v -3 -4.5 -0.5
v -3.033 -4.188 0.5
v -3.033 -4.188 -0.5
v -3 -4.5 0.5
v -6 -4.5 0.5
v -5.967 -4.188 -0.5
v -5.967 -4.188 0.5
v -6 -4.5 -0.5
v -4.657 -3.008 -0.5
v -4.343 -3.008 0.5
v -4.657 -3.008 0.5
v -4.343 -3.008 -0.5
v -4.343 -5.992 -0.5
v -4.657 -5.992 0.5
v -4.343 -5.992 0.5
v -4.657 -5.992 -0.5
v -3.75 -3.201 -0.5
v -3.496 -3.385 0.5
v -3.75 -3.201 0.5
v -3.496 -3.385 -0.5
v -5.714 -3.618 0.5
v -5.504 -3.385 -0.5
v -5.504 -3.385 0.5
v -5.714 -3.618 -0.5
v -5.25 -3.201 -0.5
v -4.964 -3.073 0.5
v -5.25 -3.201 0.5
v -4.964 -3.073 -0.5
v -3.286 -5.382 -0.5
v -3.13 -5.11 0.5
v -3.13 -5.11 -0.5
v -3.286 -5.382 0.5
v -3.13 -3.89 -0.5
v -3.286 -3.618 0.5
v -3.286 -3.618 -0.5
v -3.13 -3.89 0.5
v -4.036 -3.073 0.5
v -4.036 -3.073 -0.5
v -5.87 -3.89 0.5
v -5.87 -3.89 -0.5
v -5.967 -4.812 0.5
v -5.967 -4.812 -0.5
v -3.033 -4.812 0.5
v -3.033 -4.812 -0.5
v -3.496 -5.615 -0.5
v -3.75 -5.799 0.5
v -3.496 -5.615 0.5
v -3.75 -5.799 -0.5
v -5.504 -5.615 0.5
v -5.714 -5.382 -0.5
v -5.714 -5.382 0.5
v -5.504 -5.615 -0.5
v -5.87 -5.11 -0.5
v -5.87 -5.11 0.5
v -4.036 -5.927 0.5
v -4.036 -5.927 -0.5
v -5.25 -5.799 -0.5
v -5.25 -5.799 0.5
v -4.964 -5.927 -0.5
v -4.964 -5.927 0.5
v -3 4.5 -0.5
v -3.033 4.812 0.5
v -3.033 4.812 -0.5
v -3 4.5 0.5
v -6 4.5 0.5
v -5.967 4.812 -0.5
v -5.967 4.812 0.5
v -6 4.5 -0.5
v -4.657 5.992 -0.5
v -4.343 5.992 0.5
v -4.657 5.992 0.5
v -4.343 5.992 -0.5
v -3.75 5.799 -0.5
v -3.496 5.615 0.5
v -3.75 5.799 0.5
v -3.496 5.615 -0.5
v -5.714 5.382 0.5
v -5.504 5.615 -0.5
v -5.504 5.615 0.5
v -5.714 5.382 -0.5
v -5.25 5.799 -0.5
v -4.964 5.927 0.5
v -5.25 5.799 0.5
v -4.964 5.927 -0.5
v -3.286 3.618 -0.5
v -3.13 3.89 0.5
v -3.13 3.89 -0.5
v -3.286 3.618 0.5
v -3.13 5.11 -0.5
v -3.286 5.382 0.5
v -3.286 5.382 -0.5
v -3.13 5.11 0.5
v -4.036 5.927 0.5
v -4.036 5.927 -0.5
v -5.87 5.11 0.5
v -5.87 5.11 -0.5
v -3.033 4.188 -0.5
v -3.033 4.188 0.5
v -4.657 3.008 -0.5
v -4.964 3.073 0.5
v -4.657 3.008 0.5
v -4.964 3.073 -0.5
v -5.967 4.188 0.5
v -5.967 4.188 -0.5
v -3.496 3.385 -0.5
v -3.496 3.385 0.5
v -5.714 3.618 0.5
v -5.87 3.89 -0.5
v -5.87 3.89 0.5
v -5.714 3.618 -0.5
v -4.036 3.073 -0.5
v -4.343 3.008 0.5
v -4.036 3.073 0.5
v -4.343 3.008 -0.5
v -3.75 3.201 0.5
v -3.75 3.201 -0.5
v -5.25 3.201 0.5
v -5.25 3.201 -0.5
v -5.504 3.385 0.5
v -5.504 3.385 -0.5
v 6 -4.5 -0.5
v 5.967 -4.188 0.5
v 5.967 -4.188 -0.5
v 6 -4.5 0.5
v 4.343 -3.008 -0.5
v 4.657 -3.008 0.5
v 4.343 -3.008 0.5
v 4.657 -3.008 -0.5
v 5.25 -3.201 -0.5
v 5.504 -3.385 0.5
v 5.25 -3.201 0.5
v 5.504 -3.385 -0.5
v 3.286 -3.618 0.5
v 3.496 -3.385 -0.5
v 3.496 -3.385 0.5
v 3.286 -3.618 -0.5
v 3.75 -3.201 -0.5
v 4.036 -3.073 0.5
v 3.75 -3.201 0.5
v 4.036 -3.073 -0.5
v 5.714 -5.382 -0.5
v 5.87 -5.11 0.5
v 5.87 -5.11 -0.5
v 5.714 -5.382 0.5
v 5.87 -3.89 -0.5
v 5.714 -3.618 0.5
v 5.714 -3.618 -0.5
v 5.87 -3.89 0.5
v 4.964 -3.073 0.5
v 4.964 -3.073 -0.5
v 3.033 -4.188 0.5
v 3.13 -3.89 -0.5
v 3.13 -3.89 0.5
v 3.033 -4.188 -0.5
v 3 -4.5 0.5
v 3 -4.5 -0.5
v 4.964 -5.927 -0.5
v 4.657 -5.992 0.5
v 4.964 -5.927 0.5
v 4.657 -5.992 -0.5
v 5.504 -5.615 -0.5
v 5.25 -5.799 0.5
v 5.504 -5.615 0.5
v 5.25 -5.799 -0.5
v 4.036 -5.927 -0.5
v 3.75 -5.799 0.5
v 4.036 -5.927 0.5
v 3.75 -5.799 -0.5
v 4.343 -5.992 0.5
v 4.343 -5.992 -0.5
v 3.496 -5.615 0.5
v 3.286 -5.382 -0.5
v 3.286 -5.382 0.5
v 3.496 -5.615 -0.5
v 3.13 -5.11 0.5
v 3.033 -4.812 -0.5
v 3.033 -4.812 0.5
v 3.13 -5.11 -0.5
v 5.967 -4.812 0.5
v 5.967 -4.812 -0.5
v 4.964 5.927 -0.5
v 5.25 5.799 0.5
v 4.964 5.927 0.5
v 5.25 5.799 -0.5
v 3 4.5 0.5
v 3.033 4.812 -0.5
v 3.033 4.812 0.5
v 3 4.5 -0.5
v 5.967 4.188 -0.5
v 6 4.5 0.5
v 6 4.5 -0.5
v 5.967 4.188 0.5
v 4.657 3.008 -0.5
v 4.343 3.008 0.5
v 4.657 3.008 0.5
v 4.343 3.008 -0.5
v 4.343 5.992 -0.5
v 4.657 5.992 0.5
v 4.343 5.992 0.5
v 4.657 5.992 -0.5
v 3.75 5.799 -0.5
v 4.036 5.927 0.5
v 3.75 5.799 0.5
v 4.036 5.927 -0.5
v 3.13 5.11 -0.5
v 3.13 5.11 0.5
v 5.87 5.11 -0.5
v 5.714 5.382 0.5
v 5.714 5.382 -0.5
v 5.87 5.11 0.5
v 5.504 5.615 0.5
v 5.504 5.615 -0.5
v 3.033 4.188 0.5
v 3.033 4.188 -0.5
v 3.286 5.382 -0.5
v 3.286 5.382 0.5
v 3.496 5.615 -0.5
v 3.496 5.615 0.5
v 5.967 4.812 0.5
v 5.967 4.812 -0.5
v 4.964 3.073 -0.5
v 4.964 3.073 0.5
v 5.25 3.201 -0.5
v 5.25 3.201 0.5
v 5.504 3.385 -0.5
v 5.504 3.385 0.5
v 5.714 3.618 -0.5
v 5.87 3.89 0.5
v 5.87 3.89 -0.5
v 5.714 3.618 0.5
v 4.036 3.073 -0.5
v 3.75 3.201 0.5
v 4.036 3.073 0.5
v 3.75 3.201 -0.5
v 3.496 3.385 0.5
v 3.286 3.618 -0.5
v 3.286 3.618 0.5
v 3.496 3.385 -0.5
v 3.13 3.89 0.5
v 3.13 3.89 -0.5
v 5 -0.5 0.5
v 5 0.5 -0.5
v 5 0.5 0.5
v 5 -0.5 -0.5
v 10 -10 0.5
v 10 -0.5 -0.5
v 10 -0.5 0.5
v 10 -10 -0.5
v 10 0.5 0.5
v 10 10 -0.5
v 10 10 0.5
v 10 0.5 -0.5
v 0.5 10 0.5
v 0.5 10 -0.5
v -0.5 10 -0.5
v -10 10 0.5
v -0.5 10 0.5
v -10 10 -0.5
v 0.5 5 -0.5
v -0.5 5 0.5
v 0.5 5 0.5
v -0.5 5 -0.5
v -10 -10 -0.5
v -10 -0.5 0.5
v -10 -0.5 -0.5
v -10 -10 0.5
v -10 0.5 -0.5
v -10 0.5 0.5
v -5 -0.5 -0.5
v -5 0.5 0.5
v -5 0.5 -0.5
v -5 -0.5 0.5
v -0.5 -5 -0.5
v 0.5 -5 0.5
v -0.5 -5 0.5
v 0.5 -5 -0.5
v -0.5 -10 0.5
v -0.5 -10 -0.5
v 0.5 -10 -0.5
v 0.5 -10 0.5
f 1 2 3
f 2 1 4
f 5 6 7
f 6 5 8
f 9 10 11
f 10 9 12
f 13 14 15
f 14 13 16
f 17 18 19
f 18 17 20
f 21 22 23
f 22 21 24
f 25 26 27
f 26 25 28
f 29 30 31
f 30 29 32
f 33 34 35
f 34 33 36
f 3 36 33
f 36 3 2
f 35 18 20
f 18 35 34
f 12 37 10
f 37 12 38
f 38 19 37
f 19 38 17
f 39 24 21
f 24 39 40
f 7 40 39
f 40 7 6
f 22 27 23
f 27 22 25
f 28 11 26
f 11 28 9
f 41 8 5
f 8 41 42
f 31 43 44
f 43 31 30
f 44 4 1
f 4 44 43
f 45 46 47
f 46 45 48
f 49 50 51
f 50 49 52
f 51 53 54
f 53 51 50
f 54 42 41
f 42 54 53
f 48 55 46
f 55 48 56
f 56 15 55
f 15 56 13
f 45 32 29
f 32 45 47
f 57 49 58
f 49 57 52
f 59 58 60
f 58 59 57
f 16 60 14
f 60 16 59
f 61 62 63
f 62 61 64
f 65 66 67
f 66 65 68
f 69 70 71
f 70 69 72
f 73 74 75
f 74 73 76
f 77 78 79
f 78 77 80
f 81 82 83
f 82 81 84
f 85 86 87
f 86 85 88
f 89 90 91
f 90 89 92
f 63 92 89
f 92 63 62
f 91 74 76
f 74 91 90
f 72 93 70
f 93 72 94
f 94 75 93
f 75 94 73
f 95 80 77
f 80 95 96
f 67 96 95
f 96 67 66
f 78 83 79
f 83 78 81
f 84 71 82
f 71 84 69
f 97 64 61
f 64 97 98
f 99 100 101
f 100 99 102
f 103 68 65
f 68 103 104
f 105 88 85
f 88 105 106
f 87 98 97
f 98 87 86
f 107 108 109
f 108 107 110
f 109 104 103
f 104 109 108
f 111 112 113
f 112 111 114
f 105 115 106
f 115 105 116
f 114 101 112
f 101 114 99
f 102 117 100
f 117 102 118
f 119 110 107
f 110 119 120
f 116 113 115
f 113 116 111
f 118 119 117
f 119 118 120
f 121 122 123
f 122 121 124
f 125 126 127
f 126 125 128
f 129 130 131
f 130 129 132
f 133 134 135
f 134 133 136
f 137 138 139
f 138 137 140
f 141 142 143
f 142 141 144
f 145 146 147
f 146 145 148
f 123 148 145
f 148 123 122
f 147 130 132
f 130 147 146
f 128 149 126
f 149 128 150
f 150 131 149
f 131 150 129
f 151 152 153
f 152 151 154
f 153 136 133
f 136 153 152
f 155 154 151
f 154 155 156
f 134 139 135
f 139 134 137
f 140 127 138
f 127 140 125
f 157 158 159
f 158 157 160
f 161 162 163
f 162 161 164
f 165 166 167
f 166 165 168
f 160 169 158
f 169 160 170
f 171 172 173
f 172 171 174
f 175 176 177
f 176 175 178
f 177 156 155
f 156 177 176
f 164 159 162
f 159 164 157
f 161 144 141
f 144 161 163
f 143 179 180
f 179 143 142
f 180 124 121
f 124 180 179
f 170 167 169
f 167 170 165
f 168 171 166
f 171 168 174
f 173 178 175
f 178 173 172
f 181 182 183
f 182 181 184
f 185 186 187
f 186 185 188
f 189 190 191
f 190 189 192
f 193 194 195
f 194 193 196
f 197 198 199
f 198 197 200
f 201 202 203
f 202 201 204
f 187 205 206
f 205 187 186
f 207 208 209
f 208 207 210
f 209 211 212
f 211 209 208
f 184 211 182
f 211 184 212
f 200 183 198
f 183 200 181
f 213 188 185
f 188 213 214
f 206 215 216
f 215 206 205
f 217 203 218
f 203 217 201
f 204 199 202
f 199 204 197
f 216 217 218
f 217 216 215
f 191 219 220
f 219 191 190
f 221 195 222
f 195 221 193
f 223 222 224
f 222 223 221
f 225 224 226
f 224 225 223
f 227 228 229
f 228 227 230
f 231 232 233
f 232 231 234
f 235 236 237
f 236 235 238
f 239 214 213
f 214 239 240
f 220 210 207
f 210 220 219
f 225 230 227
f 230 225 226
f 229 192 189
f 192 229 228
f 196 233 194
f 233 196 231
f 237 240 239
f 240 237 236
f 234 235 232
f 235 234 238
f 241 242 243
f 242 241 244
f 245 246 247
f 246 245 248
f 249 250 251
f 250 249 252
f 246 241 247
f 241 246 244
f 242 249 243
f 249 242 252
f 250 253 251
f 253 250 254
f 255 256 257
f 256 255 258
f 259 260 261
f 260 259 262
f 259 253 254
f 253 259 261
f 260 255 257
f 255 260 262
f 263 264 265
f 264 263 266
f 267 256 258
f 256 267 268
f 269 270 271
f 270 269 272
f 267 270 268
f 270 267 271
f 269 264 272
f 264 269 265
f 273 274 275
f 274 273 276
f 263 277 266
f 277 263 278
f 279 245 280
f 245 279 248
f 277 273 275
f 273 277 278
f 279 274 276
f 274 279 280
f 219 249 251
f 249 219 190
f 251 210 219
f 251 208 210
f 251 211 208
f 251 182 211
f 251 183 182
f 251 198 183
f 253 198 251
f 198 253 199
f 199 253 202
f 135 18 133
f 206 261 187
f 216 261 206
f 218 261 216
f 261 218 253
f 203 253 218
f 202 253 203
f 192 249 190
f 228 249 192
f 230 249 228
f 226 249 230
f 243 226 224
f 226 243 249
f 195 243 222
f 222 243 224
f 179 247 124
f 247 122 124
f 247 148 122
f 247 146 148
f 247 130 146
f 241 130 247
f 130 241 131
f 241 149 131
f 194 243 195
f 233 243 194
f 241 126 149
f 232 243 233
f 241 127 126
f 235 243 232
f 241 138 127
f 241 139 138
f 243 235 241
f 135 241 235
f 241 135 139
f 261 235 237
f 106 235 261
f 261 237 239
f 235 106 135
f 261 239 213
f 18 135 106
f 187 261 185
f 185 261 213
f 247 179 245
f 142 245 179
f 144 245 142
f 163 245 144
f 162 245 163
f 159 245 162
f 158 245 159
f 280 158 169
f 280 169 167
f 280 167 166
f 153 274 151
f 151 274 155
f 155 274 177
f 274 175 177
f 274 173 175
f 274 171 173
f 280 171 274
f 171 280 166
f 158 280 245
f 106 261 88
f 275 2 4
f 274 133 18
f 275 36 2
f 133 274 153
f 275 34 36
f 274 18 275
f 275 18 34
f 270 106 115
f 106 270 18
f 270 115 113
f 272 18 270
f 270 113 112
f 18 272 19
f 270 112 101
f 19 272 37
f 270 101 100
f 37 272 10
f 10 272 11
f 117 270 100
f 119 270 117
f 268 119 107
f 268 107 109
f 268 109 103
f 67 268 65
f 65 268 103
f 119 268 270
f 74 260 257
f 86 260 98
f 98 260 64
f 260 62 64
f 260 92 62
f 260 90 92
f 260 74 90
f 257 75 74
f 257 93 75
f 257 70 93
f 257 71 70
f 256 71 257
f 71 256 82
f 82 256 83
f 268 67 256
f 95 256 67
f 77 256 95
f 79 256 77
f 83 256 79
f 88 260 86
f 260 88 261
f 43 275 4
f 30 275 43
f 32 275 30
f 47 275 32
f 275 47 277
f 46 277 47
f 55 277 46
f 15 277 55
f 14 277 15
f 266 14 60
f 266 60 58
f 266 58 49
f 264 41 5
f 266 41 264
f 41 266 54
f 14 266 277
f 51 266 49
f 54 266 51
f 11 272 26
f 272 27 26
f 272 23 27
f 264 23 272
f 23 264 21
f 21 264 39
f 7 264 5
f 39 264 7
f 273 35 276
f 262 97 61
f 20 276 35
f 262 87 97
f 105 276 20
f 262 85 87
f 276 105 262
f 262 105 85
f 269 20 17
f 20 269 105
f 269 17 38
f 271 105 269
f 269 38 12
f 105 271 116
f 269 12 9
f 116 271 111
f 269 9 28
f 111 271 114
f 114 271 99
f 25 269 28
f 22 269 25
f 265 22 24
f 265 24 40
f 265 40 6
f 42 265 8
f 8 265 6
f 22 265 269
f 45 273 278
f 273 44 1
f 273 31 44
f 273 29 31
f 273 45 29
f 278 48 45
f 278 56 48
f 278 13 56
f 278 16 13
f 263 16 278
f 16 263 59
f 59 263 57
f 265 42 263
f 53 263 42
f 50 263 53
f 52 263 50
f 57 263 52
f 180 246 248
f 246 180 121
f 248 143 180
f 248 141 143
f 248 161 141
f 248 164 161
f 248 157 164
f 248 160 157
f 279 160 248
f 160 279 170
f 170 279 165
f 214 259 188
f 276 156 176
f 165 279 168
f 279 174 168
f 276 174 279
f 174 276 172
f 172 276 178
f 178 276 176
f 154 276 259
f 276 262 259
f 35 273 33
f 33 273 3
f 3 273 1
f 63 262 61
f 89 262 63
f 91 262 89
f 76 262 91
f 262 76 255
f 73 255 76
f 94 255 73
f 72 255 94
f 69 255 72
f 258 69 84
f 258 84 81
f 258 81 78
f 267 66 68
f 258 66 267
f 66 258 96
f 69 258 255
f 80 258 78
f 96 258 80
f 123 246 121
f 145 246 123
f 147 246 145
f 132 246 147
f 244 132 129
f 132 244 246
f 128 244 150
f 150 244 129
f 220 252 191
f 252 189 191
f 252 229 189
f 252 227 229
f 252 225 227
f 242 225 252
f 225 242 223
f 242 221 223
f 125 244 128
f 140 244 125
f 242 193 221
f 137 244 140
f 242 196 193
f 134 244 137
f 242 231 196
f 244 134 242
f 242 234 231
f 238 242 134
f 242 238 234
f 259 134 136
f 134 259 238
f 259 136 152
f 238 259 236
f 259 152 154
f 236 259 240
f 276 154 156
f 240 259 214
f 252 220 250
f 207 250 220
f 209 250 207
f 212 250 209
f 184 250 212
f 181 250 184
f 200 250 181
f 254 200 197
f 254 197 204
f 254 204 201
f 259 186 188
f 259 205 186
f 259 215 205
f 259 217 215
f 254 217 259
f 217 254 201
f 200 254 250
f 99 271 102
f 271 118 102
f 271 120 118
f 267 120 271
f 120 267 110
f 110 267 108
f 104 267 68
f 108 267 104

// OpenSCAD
hole_size = 3.0;
base = [20,20,1];
slot = [5,1,2];

$fn = 30;
difference() {
    cube(base, center=true);
    for(i = [-4.5, 4.5]) {
        for(j = [-4.5, 4.5]) {
            translate([i,j,0]) cylinder(d=hole_size, h=10, center=true);
        }
    }
    for(theta = [0, 90, 180, 270]) {
        rotate([0,0,theta]) translate([base[0]/2-slot[0]/2,0,0]) cube(slot, center=true);
    }
}
